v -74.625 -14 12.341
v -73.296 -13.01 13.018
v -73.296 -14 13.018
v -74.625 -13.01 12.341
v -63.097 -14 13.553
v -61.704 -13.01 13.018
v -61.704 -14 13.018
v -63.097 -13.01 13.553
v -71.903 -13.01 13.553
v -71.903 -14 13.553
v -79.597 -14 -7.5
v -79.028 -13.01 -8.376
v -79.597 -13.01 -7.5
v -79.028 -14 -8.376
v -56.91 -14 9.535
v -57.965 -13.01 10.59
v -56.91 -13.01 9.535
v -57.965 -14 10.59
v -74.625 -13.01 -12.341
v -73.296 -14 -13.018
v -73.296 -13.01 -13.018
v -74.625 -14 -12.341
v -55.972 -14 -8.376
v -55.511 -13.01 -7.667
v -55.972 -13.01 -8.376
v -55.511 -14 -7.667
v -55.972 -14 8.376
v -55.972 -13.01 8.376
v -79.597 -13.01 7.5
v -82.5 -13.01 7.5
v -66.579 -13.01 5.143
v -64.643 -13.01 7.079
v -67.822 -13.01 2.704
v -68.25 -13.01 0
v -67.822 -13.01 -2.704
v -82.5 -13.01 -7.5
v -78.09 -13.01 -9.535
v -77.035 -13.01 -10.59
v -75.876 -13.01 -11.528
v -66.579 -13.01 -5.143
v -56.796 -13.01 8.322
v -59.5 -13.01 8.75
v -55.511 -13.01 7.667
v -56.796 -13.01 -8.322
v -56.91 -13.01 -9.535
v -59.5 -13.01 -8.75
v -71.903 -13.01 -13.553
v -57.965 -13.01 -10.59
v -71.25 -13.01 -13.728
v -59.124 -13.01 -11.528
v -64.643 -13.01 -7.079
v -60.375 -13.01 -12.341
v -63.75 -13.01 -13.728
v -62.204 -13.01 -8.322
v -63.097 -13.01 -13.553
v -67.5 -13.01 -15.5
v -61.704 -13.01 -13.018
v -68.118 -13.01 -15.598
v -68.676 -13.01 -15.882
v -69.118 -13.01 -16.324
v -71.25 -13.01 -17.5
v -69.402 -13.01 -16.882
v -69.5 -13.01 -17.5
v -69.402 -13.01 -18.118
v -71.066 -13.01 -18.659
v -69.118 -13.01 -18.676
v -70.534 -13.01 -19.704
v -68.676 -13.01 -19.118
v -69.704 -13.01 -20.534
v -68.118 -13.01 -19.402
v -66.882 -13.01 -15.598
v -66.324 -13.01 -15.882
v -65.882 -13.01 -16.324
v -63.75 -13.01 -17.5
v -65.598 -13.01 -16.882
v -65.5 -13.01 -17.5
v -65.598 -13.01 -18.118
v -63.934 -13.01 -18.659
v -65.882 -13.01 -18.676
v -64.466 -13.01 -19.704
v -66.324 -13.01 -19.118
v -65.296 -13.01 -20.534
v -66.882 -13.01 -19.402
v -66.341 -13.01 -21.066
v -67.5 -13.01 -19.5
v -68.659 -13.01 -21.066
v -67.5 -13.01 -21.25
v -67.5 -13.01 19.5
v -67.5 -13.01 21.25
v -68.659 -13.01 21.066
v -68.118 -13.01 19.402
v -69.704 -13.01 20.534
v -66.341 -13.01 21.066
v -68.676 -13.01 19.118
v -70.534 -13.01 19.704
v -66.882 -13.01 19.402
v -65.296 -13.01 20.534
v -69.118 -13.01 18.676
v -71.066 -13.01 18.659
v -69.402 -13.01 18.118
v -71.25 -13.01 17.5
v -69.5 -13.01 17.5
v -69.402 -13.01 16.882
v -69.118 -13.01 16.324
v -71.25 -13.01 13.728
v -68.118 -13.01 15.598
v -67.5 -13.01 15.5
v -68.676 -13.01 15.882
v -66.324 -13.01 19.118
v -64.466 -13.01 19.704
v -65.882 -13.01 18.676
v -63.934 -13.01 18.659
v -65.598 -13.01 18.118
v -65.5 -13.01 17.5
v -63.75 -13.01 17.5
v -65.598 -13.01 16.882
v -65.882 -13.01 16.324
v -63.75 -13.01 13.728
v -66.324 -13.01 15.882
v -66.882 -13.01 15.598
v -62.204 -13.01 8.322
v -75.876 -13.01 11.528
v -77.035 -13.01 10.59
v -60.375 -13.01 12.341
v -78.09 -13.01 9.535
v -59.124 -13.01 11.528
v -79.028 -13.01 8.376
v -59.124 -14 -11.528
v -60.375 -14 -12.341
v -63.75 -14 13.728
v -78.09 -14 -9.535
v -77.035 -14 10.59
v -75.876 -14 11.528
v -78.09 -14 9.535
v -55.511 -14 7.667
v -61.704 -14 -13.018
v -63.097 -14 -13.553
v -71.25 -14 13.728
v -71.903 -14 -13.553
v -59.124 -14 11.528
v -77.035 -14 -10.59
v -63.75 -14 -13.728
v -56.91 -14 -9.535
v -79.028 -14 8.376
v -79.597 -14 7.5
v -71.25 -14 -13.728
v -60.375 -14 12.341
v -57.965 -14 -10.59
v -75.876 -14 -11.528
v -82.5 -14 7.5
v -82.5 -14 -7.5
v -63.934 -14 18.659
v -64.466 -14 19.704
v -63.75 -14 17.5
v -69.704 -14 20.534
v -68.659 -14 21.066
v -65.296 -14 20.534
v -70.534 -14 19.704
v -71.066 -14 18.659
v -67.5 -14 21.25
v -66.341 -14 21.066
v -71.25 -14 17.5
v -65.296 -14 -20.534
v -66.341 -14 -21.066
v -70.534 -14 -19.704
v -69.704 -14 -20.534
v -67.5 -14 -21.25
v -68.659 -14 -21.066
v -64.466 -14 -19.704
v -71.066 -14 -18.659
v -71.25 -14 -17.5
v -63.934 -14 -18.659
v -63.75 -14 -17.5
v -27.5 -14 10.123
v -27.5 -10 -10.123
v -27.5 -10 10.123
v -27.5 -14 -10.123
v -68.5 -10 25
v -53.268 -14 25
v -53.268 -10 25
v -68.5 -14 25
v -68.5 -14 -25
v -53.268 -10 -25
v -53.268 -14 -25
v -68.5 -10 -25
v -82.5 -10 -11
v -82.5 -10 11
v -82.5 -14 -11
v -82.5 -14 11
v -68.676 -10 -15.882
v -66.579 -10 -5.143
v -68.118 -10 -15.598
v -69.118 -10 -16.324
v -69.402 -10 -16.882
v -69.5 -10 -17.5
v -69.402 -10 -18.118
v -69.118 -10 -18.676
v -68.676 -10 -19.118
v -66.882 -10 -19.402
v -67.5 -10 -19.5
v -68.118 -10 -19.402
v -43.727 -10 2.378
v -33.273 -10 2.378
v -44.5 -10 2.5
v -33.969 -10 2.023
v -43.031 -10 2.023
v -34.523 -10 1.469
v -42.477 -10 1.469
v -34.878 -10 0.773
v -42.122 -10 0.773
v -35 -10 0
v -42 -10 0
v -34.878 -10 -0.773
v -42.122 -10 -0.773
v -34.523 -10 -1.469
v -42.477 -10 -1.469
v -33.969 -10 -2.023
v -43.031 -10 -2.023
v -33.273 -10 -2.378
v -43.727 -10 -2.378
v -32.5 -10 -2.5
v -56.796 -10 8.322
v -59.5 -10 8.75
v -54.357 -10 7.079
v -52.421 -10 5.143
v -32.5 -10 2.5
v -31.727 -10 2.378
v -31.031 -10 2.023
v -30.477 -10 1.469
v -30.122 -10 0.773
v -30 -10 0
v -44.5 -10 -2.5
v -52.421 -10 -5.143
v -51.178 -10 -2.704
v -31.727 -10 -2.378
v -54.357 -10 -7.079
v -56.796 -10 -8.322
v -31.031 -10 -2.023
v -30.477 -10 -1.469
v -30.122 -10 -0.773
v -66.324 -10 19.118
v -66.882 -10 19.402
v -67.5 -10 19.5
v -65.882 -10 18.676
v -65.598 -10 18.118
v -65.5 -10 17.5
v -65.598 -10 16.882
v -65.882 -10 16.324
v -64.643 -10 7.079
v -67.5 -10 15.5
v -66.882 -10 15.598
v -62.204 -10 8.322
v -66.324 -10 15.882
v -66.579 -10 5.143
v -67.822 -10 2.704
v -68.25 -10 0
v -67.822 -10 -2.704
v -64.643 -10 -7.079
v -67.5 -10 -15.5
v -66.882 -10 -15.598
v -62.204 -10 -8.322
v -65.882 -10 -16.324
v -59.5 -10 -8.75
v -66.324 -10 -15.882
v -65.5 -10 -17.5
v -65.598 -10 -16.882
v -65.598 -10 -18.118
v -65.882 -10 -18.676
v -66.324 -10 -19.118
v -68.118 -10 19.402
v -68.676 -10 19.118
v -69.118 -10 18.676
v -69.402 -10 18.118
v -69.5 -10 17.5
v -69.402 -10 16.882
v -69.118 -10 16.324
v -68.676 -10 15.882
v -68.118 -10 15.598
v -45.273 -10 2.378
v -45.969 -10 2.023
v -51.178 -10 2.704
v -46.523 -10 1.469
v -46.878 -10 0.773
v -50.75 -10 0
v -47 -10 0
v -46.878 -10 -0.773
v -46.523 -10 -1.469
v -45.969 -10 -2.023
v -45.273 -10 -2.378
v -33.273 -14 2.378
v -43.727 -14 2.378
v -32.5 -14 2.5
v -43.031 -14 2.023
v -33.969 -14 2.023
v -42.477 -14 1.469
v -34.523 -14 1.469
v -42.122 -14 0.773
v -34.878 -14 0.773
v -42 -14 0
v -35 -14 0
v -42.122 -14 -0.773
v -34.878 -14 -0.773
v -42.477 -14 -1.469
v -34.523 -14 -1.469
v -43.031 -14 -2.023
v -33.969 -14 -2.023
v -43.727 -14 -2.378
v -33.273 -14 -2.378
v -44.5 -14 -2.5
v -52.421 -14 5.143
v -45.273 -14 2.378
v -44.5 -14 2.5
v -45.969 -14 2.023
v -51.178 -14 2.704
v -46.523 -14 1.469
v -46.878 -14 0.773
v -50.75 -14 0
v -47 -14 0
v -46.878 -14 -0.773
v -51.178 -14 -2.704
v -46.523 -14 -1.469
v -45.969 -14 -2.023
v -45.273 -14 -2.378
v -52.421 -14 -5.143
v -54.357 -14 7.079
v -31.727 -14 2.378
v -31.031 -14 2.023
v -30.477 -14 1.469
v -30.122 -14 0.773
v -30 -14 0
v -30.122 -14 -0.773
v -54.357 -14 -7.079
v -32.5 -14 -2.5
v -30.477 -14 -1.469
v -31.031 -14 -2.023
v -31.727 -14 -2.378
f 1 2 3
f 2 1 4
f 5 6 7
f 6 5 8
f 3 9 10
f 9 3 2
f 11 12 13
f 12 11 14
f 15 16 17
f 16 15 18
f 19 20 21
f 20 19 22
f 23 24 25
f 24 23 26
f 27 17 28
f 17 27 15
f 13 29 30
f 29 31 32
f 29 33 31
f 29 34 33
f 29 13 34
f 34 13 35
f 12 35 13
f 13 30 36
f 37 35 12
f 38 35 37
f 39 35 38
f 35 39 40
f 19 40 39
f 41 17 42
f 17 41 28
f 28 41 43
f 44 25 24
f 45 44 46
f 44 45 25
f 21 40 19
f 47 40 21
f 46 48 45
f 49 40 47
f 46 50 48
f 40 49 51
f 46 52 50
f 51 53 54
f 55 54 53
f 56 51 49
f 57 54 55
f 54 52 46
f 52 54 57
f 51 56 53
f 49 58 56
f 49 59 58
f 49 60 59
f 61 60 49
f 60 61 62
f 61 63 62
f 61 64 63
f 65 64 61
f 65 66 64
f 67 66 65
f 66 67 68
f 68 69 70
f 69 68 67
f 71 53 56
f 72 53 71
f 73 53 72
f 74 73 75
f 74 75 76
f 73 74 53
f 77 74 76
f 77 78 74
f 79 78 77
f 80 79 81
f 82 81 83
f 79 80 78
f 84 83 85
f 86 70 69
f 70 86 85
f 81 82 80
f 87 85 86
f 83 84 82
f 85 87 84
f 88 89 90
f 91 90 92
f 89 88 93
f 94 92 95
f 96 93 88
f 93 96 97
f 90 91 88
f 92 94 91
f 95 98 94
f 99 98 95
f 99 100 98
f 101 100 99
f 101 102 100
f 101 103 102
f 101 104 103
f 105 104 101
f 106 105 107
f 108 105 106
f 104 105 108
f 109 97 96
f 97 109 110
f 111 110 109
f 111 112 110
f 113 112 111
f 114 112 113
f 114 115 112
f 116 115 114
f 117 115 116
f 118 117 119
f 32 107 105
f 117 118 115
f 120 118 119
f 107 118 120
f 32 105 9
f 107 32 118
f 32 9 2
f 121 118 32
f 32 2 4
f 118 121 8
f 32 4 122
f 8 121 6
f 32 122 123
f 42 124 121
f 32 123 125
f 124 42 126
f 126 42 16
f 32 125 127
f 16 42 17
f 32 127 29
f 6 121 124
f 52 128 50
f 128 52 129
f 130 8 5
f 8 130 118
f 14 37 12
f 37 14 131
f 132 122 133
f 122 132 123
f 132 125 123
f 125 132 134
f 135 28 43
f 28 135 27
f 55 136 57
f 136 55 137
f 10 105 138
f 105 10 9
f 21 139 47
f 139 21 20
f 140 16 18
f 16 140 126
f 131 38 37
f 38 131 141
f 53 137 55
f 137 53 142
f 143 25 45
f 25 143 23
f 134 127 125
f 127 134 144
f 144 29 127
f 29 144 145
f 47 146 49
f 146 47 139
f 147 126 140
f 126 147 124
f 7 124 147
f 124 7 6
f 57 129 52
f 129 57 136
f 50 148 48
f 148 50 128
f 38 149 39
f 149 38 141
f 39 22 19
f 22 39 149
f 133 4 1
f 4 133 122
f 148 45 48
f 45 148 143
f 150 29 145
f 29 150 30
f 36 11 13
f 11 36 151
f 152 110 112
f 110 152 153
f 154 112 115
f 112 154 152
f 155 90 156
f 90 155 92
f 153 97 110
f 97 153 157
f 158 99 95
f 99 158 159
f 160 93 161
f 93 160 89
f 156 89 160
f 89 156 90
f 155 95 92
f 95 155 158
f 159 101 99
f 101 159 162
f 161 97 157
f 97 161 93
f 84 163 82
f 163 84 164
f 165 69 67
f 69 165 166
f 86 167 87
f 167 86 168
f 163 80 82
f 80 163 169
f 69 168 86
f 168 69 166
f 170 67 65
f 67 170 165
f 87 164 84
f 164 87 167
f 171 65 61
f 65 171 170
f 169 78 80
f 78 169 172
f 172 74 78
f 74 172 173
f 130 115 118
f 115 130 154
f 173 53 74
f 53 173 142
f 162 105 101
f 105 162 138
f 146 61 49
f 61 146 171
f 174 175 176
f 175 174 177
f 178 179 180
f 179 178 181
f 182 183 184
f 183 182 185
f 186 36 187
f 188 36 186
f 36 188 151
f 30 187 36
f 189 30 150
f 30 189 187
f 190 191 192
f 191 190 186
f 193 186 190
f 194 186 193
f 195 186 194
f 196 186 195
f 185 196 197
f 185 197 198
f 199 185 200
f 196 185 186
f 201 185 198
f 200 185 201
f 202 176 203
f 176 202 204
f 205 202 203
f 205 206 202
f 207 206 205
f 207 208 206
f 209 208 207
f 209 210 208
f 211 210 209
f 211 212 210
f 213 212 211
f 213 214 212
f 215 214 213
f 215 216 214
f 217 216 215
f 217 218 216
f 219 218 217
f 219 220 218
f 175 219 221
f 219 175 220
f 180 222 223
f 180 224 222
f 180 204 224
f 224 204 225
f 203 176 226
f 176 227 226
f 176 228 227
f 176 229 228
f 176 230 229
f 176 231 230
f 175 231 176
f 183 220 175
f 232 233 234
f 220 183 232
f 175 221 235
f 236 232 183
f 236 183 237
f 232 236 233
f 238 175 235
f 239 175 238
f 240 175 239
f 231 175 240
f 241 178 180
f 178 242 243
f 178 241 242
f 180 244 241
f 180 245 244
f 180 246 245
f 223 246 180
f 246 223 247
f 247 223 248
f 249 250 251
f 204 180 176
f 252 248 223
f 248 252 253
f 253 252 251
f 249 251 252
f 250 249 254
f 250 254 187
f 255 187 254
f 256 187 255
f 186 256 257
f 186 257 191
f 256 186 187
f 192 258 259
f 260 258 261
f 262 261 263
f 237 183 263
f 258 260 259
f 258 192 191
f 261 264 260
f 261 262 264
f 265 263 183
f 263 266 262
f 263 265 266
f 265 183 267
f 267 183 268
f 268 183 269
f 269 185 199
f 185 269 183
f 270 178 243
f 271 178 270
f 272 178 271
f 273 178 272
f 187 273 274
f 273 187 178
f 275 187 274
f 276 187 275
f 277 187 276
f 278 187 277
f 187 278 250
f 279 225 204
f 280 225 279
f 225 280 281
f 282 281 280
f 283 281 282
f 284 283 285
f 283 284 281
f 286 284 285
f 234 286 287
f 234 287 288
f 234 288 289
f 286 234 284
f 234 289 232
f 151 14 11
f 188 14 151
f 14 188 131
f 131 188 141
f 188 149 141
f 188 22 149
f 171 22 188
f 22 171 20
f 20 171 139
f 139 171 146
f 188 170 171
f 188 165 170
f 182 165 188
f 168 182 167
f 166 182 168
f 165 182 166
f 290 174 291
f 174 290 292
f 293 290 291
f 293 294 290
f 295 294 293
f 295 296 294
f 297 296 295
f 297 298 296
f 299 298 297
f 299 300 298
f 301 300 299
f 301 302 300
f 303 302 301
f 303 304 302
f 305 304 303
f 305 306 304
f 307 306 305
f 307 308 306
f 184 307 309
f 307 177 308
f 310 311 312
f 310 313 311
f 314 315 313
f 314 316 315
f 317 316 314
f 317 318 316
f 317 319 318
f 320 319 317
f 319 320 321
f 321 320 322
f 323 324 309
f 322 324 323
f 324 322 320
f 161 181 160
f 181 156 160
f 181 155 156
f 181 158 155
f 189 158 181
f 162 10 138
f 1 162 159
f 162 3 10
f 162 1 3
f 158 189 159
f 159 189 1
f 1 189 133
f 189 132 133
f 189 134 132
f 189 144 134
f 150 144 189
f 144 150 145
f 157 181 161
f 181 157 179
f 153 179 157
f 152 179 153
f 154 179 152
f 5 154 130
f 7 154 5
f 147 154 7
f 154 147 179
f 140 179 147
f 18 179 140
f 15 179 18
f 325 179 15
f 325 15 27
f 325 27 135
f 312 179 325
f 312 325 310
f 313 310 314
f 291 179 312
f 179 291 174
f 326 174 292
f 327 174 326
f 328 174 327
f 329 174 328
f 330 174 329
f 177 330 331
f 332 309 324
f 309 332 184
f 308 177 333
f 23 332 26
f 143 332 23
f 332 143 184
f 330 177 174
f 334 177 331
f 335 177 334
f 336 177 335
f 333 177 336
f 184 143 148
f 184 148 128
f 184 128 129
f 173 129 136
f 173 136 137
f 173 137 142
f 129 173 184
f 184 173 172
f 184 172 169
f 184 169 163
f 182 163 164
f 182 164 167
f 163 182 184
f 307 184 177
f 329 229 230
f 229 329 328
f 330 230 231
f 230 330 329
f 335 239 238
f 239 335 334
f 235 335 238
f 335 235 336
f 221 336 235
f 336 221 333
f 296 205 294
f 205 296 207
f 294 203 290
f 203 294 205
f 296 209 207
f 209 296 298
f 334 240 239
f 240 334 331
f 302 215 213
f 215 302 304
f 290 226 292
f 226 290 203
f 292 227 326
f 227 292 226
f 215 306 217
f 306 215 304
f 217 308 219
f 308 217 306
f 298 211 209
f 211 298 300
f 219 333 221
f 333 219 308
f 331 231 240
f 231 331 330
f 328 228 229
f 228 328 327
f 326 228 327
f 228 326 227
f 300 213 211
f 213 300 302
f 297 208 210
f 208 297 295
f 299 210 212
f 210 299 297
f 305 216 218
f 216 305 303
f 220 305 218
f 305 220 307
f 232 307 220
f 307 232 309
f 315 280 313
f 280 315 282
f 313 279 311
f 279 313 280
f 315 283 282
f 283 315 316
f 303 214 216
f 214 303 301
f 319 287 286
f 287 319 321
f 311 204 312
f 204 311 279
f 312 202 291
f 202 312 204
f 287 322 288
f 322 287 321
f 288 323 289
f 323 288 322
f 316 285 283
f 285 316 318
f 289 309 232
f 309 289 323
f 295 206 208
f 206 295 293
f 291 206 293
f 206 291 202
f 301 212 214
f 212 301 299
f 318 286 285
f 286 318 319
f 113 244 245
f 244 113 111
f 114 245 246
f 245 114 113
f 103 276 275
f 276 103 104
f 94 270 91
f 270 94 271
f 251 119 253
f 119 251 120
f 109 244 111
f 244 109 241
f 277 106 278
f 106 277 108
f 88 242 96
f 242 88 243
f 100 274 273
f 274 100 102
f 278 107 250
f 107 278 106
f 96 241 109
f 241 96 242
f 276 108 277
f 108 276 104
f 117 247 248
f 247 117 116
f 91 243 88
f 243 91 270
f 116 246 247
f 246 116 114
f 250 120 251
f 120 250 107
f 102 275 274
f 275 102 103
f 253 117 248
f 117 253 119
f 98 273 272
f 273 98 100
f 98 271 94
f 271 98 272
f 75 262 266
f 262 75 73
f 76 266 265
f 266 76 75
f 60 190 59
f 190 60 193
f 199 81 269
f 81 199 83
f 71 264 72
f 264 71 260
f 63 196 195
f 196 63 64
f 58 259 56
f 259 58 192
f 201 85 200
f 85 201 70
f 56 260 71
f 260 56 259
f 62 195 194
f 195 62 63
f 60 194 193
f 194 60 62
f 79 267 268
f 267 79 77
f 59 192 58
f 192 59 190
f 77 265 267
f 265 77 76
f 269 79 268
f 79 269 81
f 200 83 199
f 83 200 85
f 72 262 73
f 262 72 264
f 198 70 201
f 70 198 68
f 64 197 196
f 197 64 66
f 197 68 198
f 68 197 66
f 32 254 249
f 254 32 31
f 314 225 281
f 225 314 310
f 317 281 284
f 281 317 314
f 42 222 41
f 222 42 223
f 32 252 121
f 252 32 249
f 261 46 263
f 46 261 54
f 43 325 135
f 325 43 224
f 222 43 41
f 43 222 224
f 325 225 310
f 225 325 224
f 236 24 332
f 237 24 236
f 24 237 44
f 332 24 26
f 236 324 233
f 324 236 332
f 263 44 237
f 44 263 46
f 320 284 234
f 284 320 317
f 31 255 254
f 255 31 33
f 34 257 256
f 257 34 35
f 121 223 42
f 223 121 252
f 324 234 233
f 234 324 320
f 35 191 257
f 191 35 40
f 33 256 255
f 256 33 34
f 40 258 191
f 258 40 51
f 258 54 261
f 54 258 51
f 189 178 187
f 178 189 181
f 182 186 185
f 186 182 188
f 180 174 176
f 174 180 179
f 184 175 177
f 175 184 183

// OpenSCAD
// Fixation d'un moteur 28BYJ-48 sur une barre V-slot 20x20 
// v1 a été imprimé.
//    *  La hauteur de la monture est insuffisante.
//    *  dans les coupures de droites sont trop importantes.
//    *  les deux trous de fixation sont un peu trop proches l'un de l'autre
// V2 a été imprimé.
// je dois déplacer les trous de fixation de la monture sur le rail. 
// Faire  un trou dans la monture pour que le pignon ne frotte pas sur la monture.
// barre V-Slot
// Agrandir ce trou
bar_y = 20;
bar_z = 20;
// petite barre de guidage (optionnelle)
y_width_hole = 2 ;
z_width_hole = 5.5 ;

// pm : pooley_mount
pm_x = 55; 
pm_y = 4;
pm_z = 50;


module bar_20x20(){
    %cube([100, 20, 20], center = true);
};
    
module hole_m5(){
    rotate([90, 0, 0]) cylinder(h=20, r=mp_hole1_r, center = true, $fn=20);
}

module hole_m4(){
    rotate([90, 0, 0]) cylinder(h=20, r=2, center = true, $fn=20);
}

// pour fixer la monture, 2 trous de m5 distants de 10 mm.
mp_hole1_r = 5/2 ;
pm_hole1_d1 = 0 + 5;
pm_hole1_d2 = pm_hole1_d1 + 12;

module mount(){
    pm_hole2_d = 40 ; // distance de percage des trous tenant le moteur / bord droit de la mouture
    pm_hole2_distance = 35; // écart entre les trous tenant le moteur
    pm_hole2_r = 4/2;
    // motor
m_dist_to_shaft = 8 ; //
m_shaft_hole_r = (16 + 1.5) /2 ;
m_radius = (28 + 0.5) / 2; // diamètre général pour la découpe
m_pattes_defixation = 7 + 0.5;
m_profondeur = 1 ; // profondeur de la découpe pour loguer le moteur 
    
    difference(){
        // le bloc principal
        union(){
        //translate ([0, -(bar_y + pm_y)/2, 0 ])  
        cube([pm_x, pm_y, pm_z], center =true );
        
        // on ajoute une petite barre pour mieux aligner la fixation
        // translate([(pm_x-22)/2, (pm_y + y_width_hole)/2, 0])
        // cube([22, y_width_hole, z_width_hole], center = true);
        }
    // trous de fixation sur le rail
    translate ([(pm_x) /2 - pm_hole1_d1, 0, 0]) hole_m5();
    translate ([(pm_x) /2 - pm_hole1_d2, 0, 0]) hole_m5();
    // trous de fixation du moteur par 2 boulons de m4
    translate ([(pm_x) /2 - pm_hole2_d, 0, pm_hole2_distance/2]) hole_m4();
    translate ([(pm_x) /2 - pm_hole2_d, 0, -pm_hole2_distance/2]) hole_m4();
    
    // trou pour axe moteur
    translate([(pm_x/2 - pm_hole2_d + m_dist_to_shaft) ,0,  0])
    rotate([90, 0, 0]) cylinder(h=20, r=m_shaft_hole_r, center = true, $fn=20 );
    
        
    // découpe pour mieux fixer
    // un grand rond  et     // un échappement pour les fils
    d_x = 15    ; 
    d_z = 15 ;
        
    translate([(pm_x) /2 - pm_hole2_d,-(pm_y- m_profondeur)/2-0.01,0]){
        rotate([90, 0, 0]) cylinder(h=m_profondeur, r=m_radius, center = true, $fn=60);
        // zone d'échappement des fils
        translate([-20, -d_x + m_profondeur/2, -d_z/2])
        cube([d_x,d_x,d_z]);   
        // 2 petits cylindre pour loguer les pattes
        translate([0, 0, pm_hole2_distance/2])
        rotate([90, 0, 0]) cylinder(h=m_profondeur, r=m_pattes_defixation/2, center = true, $fn=20 );
        translate([0, 0, -pm_hole2_distance/2])
        rotate([90, 0, 0]) cylinder(h=m_profondeur, r=m_pattes_defixation/2, center = true, $fn=20 );
        // un petit cube pour les pattes
        translate([-m_pattes_defixation/2, -m_profondeur/2, -pm_hole2_distance/2])
      //  color("purple", 0.5) 
        cube([m_pattes_defixation,m_profondeur, pm_hole2_distance]);
        }
    // couper les parties inutiles des coins
    cut_x = 20;
    cut_y = 20;// profondeur de coupe 
    cut_h = 40; 
        // coin haut gauche
        translate([-pm_x/2, 0, +11])
        rotate([0,-45-90,0]) 
        translate([0,-15 ,-cut_h/2]) cube([cut_x, cut_y, cut_h]);     
        // coin bas gauche
        translate([-pm_x/2, 0, -11])
        rotate([0,45+90,0]) 
        translate([0,-15 ,-cut_h/2]) cube([cut_x, cut_y, cut_h]);
        
        // coin haut droit
        //rotate(
        translate([20, 0 , 26]) 
        rotate([0,30,0])
        cube([cut_h, cut_y, cut_x], center = true);
        // et son mirroir
        mirror([0,0,90]) 
        translate([20, 0 , 26]) 
        rotate([0,30,0])
        cube([cut_h, cut_y, cut_x], center = true);
     
    }; // end of diff
};

// On trace la barre

translate([-0, -0,-0]) 

bar_20x20();

// module de fixation
translate([0-55,-(bar_y+pm_y)/2, 0])
mount();
